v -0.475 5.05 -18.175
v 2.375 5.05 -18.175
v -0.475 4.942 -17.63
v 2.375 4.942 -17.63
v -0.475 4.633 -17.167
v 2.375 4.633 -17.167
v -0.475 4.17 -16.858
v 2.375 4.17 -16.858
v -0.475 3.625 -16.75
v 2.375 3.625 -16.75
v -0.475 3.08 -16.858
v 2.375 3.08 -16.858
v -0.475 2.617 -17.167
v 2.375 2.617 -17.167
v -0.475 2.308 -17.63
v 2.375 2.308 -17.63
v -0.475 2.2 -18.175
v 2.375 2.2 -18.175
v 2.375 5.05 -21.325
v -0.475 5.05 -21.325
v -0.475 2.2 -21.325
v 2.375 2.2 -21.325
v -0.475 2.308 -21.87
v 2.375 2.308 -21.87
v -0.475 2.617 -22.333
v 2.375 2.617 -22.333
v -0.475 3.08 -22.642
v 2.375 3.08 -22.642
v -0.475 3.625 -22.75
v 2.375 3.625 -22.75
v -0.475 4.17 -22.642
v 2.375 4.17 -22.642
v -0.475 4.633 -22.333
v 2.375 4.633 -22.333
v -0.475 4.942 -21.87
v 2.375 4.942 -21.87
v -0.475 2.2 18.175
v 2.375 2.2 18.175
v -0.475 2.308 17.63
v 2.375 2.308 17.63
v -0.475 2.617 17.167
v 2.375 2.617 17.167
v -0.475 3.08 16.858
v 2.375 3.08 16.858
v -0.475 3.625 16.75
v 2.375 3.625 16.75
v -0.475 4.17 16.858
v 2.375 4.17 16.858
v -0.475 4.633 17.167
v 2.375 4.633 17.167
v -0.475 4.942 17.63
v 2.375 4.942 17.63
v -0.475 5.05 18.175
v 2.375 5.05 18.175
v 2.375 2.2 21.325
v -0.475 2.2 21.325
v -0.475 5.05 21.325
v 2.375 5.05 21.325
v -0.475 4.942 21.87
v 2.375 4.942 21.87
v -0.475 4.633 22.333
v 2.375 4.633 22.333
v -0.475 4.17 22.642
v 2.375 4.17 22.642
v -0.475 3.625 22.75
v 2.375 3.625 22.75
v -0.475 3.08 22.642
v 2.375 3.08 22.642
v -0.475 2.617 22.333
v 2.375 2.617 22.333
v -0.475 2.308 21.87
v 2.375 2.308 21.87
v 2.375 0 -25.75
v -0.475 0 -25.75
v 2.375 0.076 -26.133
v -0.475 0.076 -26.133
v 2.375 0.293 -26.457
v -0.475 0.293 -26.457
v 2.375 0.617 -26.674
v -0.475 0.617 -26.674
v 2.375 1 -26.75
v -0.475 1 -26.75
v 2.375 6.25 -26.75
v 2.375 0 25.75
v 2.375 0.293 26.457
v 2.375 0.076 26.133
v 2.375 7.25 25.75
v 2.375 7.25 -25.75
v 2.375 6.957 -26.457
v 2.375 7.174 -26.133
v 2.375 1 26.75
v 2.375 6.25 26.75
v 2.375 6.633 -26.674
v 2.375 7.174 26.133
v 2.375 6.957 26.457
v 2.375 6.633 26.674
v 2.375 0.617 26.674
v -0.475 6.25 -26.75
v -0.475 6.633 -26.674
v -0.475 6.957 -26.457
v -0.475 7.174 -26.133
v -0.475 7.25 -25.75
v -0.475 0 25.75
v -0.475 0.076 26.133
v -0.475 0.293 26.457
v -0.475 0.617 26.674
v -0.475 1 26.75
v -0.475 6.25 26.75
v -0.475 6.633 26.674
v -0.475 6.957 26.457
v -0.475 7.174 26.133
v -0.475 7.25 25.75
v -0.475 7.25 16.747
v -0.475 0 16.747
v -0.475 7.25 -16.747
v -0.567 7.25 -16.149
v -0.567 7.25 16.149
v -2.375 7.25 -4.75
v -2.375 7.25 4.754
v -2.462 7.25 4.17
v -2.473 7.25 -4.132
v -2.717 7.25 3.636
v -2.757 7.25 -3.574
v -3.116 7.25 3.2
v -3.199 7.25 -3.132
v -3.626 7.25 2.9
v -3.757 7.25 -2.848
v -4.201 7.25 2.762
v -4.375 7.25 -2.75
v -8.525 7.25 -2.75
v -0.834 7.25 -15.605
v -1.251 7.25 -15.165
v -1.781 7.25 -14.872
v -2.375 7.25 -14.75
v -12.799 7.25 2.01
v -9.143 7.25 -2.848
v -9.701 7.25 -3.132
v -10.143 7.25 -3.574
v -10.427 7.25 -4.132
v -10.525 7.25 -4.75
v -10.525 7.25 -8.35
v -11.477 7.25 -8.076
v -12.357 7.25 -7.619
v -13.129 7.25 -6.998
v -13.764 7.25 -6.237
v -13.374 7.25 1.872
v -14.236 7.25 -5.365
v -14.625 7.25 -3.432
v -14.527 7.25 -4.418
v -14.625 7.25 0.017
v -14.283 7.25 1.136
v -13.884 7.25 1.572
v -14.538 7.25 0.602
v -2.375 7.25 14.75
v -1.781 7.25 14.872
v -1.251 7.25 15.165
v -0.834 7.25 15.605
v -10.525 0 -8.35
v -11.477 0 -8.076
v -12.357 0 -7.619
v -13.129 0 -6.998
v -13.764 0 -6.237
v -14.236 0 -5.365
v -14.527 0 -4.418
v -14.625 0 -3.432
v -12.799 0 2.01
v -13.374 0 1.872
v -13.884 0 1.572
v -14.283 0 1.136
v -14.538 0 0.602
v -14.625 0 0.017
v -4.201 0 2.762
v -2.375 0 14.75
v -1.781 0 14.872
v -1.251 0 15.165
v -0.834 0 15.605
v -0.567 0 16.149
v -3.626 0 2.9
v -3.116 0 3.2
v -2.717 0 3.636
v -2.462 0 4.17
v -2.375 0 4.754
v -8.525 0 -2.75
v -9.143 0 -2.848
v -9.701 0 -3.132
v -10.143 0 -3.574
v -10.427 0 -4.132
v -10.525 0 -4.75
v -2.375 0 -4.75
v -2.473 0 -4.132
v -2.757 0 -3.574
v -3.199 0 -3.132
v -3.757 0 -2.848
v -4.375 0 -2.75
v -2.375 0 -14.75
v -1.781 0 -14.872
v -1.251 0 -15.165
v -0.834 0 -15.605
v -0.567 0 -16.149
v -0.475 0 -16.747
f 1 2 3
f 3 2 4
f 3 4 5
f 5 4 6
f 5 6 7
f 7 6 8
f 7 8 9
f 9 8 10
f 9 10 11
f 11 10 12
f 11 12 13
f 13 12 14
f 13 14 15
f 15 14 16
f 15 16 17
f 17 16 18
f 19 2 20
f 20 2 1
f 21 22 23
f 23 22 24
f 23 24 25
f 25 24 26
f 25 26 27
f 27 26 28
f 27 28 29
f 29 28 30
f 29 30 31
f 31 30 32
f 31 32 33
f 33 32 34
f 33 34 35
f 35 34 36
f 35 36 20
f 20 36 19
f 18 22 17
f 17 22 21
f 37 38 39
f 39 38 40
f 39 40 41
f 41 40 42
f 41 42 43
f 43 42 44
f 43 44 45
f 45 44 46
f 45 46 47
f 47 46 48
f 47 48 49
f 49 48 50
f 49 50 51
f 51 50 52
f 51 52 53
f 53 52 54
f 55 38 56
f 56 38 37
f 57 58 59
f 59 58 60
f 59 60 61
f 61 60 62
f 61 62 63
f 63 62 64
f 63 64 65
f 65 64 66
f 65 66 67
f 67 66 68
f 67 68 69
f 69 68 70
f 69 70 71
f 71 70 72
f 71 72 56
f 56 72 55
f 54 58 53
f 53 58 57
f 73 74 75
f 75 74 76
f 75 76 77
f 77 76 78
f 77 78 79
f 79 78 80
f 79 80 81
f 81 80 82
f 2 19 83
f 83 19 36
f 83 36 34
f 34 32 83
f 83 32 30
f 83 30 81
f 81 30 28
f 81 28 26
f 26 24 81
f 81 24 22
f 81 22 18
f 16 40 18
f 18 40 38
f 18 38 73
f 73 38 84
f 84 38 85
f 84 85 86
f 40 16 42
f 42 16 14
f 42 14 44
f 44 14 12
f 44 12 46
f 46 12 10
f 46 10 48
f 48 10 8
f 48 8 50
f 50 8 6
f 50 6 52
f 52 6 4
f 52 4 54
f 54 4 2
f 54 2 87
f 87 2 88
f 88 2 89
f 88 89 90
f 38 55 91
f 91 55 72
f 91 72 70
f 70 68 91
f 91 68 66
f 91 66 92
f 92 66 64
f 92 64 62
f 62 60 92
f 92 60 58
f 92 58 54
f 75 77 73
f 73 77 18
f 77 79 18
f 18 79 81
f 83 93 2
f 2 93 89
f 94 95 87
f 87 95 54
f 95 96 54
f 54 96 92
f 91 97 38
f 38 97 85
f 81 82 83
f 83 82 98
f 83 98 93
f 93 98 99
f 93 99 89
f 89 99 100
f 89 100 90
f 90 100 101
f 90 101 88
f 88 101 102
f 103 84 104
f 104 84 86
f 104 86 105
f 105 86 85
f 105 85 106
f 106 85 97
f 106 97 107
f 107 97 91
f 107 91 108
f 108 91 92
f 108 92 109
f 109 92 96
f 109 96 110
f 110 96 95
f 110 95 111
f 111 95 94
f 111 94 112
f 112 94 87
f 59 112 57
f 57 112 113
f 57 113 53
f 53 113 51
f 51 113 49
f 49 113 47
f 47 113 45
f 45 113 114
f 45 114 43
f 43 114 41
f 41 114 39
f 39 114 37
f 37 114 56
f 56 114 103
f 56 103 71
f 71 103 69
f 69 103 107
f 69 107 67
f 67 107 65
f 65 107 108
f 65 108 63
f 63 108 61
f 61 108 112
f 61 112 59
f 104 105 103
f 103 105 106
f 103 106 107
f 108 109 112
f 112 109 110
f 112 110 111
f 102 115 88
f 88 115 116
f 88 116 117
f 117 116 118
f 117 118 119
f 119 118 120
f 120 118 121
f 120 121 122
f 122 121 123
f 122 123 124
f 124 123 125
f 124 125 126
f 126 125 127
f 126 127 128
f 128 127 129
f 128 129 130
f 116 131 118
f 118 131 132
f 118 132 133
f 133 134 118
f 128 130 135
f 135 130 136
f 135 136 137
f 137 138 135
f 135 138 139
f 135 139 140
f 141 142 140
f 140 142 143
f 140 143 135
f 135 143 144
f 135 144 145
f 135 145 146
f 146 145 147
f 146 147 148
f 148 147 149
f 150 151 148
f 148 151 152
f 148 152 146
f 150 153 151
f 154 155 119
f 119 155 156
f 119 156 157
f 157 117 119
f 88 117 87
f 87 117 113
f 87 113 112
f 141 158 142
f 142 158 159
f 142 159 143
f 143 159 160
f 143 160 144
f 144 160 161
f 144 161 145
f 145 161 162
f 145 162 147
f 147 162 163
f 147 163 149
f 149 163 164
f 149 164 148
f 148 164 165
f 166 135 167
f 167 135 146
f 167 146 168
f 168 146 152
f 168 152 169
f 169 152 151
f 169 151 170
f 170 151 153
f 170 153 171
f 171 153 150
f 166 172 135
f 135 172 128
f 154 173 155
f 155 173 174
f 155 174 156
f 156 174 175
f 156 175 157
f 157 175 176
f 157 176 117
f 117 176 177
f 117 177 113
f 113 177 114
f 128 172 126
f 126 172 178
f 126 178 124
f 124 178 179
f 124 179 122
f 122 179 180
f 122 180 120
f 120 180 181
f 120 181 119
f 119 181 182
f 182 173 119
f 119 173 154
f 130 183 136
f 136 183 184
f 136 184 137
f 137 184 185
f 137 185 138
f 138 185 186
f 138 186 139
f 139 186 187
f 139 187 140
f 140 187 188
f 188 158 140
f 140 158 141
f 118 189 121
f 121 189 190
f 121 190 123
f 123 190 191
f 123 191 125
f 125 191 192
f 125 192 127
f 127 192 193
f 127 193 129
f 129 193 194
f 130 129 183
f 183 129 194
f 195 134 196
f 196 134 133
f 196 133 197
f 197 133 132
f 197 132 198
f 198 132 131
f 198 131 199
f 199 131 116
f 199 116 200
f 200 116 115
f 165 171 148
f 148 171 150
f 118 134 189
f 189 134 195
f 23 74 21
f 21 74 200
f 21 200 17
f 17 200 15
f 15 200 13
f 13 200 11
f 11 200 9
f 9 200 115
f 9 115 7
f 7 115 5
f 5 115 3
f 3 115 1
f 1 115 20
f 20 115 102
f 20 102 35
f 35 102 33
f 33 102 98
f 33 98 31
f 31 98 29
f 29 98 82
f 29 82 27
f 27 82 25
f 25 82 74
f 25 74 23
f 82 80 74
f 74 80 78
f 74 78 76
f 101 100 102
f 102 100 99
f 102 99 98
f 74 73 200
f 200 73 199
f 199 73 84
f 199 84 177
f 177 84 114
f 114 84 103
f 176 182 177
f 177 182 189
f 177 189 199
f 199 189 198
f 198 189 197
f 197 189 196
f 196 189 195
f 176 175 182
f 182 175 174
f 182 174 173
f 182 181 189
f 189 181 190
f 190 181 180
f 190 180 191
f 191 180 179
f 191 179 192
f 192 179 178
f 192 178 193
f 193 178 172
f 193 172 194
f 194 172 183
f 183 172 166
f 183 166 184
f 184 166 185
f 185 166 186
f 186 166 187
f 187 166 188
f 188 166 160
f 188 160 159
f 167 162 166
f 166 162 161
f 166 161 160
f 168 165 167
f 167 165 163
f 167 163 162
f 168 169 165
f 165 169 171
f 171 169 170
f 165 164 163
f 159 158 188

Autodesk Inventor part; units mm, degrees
ref_plane "YZ Plane" through (0, 0, 0) normal (1, 0, 0) x (0, 1, 0)
ref_plane "XZ Plane" through (0, 0, 0) normal (0, 1, 0) x (-1, 0, 0)
ref_plane "XY Plane" through (0, 0, 0) normal (0, 0, 1) x (1, 0, 0)
sketch "Boceto1" plane through (0, 0, 0) normal (0, 1, 0) x (-1, 0, 0)
  line L0 (-2.375, -26.75) -> (2.375, -26.75)
  line L1 (2.375, -26.75) -> (2.375, 26.75)
  line L2 (2.375, 26.75) -> (-2.375, 26.75)
  line L3 (-2.375, 26.75) -> (-2.375, -26.75)
  line L4 (-2.375, -26.75) -> (2.375, 26.75) construction
  line L5 (2.375, -26.75) -> (-2.375, 26.75) construction
  line L6 (2.375, 26.75) -> (0.475, 26.75)
  line L7 (0.475, 26.75) -> (0.475, 14.75)
  line L8 (0.475, 14.75) -> (2.375, 14.75)
  line L9 (2.375, 14.75) -> (2.375, 26.75)
  line L10 (2.375, -26.75) -> (0.475, -26.75)
  line L11 (0.475, -26.75) -> (0.475, -14.75)
  line L12 (0.475, -14.75) -> (2.375, -14.75)
  line L13 (2.375, -14.75) -> (2.375, -26.75)
  line L14 (2.375, -26.75) -> (2.375, -2.75)
  line L15 (2.375, -2.75) -> (10.525, -2.75)
  line L16 (10.525, -2.75) -> (10.525, -8.35)
  line L17 (10.525, -8.35) -> (14.625, -8.35)
  line L18 (14.625, -8.35) -> (14.625, 1.85)
  line L19 (14.625, 1.85) -> (2.375, 1.85)
  line L20 (14.625, 1.85) -> (2.375, 2.9217)
  point P0 (0, 0)
  point P1 (2.375, 14.75)
  point P2 (0.475, -26.75)
  point P3 (2.375, -14.75)
  dimension "d0" = 4.75
  dimension "d1" = 53.5
  dimension "d2" = 1.9
  dimension "d3" = 12
  dimension "d4" = 12
  dimension "d5" = 24
  dimension "d6" = 8.15
  dimension "d7" = 5.6
  dimension "d8" = 4.1
  dimension "d9" = 10.2
  dimension "d10" = 5
extrude "Extrusión1" add sketch "Boceto1" along normal blind 7.25 contours L3 L2 L7 L8 L1 L12 L11 L0 | L1 L19 L18 L17 L16 L15 | L1 L20 L19
fillet "Empalme1" radius 2 5 edges at (-0.475, 3.625, -14.75) (-2.375, 3.625, -2.75) (-10.525, 3.625, -2.75) (-2.375, 3.625, 2.9217) (-0.475, 3.625, 14.75)
fillet "Empalme2" radius 2 1 edges at (-14.625, 3.625, 1.85)
fillet "Empalme3" radius 5 1 edges at (-14.625, 3.625, -8.35)
fillet "Empalme4" radius 1 4 edges at (0.95, 7.25, 26.75) (0.95, 0, 26.75) (0.95, 7.25, -26.75) (0.95, 0, -26.75)
sketch "Boceto2" plane through (-0.475, 0, 16.7475) normal (-1, 0, 0) x (0, 0, 1)
  arc A0 (9.0025, 0) -> (10.0025, 1) centre (9.0025, 1) ccw projected
  line L0 (10.0025, 1) -> (10.0025, 6.25) projected
  arc A1 (10.0025, 6.25) -> (9.0025, 7.25) centre (9.0025, 6.25) ccw projected
  line L1 (0, 7.25) -> (9.0025, 7.25) projected
  line L2 (0, 0) -> (0, 7.25) projected
  line L3 (0, 0) -> (9.0025, 0) projected
  arc A2 (-43.4975, 1) -> (-42.4975, 0) centre (-42.4975, 1) ccw projected
  line L4 (-42.4975, 0) -> (-33.495, 0) projected
  line L5 (-33.495, 7.25) -> (-33.495, 0) projected
  line L6 (-42.4975, 7.25) -> (-33.495, 7.25) projected
  arc A3 (-42.4975, 7.25) -> (-43.4975, 6.25) centre (-42.4975, 6.25) ccw projected
  line L7 (-43.4975, 1) -> (-43.4975, 6.25) projected
  line L8 (4.715, 2.2) -> (2.9125, 2.2)
  line L9 (2.2, 5.05) -> (4.5775, 5.05)
  line L10 (10.0025, 3.4658) -> (6.0025, 3.4658)
  line L11 (6.0025, 3.4658) -> (6.0025, 4.2)
  line L12 (6.0025, 3.4658) -> (6.0025, 5.05)
  line L13 (4.5775, 2.2) -> (1.4275, 2.2)
  line L14 (0.0025, 3.625) -> (0.0025, 3.625)
  line L15 (1.4275, 5.05) -> (6.0025, 5.05)
  line L16 (6.0025, 3.625) -> (6.0025, 3.625)
  arc A4 (4.5775, 2.2) -> (6.0025, 3.625) centre (4.5775, 3.625) ccw
  arc A5 (6.0025, 3.625) -> (4.5775, 5.05) centre (4.5775, 3.625) ccw
  arc A6 (1.4275, 5.05) -> (0.0025, 3.625) centre (1.4275, 3.625) ccw
  arc A7 (0.0025, 3.625) -> (1.4275, 2.2) centre (1.4275, 3.625) ccw
  point P0 (-16.7475, 0)
  point P1 (6.0025, 2.2)
  point P2 (0.0025, 5.05)
  point P3 (3.715, 5.05)
  point P4 (0.0025, 3.625)
  point P5 (2.9125, 2.2)
  point P6 (4.5775, 2.2)
  point P7 (2.2, 5.05)
  dimension "d17" = 2.2
  dimension "d18" = 4
  dimension "d19" = 6
  dimension "d21" = 2.85
  dimension "d22" = 1.425
extrude "Extrusión2" cut sketch "Boceto2" against normal blind 7.25 contours L8 L13 A7 A6 L15 L9 A5 A4
ref_plane "Plano de trabajo1" through (2.375, 1, 0) normal (0, 0, -1) x (-1, 0, 0)
mirror "Simetría1" about plane through (2.375, 1, 0) normal (0, 0, -1) of "Extrusión2"
properties part number "Cierre cocina"
